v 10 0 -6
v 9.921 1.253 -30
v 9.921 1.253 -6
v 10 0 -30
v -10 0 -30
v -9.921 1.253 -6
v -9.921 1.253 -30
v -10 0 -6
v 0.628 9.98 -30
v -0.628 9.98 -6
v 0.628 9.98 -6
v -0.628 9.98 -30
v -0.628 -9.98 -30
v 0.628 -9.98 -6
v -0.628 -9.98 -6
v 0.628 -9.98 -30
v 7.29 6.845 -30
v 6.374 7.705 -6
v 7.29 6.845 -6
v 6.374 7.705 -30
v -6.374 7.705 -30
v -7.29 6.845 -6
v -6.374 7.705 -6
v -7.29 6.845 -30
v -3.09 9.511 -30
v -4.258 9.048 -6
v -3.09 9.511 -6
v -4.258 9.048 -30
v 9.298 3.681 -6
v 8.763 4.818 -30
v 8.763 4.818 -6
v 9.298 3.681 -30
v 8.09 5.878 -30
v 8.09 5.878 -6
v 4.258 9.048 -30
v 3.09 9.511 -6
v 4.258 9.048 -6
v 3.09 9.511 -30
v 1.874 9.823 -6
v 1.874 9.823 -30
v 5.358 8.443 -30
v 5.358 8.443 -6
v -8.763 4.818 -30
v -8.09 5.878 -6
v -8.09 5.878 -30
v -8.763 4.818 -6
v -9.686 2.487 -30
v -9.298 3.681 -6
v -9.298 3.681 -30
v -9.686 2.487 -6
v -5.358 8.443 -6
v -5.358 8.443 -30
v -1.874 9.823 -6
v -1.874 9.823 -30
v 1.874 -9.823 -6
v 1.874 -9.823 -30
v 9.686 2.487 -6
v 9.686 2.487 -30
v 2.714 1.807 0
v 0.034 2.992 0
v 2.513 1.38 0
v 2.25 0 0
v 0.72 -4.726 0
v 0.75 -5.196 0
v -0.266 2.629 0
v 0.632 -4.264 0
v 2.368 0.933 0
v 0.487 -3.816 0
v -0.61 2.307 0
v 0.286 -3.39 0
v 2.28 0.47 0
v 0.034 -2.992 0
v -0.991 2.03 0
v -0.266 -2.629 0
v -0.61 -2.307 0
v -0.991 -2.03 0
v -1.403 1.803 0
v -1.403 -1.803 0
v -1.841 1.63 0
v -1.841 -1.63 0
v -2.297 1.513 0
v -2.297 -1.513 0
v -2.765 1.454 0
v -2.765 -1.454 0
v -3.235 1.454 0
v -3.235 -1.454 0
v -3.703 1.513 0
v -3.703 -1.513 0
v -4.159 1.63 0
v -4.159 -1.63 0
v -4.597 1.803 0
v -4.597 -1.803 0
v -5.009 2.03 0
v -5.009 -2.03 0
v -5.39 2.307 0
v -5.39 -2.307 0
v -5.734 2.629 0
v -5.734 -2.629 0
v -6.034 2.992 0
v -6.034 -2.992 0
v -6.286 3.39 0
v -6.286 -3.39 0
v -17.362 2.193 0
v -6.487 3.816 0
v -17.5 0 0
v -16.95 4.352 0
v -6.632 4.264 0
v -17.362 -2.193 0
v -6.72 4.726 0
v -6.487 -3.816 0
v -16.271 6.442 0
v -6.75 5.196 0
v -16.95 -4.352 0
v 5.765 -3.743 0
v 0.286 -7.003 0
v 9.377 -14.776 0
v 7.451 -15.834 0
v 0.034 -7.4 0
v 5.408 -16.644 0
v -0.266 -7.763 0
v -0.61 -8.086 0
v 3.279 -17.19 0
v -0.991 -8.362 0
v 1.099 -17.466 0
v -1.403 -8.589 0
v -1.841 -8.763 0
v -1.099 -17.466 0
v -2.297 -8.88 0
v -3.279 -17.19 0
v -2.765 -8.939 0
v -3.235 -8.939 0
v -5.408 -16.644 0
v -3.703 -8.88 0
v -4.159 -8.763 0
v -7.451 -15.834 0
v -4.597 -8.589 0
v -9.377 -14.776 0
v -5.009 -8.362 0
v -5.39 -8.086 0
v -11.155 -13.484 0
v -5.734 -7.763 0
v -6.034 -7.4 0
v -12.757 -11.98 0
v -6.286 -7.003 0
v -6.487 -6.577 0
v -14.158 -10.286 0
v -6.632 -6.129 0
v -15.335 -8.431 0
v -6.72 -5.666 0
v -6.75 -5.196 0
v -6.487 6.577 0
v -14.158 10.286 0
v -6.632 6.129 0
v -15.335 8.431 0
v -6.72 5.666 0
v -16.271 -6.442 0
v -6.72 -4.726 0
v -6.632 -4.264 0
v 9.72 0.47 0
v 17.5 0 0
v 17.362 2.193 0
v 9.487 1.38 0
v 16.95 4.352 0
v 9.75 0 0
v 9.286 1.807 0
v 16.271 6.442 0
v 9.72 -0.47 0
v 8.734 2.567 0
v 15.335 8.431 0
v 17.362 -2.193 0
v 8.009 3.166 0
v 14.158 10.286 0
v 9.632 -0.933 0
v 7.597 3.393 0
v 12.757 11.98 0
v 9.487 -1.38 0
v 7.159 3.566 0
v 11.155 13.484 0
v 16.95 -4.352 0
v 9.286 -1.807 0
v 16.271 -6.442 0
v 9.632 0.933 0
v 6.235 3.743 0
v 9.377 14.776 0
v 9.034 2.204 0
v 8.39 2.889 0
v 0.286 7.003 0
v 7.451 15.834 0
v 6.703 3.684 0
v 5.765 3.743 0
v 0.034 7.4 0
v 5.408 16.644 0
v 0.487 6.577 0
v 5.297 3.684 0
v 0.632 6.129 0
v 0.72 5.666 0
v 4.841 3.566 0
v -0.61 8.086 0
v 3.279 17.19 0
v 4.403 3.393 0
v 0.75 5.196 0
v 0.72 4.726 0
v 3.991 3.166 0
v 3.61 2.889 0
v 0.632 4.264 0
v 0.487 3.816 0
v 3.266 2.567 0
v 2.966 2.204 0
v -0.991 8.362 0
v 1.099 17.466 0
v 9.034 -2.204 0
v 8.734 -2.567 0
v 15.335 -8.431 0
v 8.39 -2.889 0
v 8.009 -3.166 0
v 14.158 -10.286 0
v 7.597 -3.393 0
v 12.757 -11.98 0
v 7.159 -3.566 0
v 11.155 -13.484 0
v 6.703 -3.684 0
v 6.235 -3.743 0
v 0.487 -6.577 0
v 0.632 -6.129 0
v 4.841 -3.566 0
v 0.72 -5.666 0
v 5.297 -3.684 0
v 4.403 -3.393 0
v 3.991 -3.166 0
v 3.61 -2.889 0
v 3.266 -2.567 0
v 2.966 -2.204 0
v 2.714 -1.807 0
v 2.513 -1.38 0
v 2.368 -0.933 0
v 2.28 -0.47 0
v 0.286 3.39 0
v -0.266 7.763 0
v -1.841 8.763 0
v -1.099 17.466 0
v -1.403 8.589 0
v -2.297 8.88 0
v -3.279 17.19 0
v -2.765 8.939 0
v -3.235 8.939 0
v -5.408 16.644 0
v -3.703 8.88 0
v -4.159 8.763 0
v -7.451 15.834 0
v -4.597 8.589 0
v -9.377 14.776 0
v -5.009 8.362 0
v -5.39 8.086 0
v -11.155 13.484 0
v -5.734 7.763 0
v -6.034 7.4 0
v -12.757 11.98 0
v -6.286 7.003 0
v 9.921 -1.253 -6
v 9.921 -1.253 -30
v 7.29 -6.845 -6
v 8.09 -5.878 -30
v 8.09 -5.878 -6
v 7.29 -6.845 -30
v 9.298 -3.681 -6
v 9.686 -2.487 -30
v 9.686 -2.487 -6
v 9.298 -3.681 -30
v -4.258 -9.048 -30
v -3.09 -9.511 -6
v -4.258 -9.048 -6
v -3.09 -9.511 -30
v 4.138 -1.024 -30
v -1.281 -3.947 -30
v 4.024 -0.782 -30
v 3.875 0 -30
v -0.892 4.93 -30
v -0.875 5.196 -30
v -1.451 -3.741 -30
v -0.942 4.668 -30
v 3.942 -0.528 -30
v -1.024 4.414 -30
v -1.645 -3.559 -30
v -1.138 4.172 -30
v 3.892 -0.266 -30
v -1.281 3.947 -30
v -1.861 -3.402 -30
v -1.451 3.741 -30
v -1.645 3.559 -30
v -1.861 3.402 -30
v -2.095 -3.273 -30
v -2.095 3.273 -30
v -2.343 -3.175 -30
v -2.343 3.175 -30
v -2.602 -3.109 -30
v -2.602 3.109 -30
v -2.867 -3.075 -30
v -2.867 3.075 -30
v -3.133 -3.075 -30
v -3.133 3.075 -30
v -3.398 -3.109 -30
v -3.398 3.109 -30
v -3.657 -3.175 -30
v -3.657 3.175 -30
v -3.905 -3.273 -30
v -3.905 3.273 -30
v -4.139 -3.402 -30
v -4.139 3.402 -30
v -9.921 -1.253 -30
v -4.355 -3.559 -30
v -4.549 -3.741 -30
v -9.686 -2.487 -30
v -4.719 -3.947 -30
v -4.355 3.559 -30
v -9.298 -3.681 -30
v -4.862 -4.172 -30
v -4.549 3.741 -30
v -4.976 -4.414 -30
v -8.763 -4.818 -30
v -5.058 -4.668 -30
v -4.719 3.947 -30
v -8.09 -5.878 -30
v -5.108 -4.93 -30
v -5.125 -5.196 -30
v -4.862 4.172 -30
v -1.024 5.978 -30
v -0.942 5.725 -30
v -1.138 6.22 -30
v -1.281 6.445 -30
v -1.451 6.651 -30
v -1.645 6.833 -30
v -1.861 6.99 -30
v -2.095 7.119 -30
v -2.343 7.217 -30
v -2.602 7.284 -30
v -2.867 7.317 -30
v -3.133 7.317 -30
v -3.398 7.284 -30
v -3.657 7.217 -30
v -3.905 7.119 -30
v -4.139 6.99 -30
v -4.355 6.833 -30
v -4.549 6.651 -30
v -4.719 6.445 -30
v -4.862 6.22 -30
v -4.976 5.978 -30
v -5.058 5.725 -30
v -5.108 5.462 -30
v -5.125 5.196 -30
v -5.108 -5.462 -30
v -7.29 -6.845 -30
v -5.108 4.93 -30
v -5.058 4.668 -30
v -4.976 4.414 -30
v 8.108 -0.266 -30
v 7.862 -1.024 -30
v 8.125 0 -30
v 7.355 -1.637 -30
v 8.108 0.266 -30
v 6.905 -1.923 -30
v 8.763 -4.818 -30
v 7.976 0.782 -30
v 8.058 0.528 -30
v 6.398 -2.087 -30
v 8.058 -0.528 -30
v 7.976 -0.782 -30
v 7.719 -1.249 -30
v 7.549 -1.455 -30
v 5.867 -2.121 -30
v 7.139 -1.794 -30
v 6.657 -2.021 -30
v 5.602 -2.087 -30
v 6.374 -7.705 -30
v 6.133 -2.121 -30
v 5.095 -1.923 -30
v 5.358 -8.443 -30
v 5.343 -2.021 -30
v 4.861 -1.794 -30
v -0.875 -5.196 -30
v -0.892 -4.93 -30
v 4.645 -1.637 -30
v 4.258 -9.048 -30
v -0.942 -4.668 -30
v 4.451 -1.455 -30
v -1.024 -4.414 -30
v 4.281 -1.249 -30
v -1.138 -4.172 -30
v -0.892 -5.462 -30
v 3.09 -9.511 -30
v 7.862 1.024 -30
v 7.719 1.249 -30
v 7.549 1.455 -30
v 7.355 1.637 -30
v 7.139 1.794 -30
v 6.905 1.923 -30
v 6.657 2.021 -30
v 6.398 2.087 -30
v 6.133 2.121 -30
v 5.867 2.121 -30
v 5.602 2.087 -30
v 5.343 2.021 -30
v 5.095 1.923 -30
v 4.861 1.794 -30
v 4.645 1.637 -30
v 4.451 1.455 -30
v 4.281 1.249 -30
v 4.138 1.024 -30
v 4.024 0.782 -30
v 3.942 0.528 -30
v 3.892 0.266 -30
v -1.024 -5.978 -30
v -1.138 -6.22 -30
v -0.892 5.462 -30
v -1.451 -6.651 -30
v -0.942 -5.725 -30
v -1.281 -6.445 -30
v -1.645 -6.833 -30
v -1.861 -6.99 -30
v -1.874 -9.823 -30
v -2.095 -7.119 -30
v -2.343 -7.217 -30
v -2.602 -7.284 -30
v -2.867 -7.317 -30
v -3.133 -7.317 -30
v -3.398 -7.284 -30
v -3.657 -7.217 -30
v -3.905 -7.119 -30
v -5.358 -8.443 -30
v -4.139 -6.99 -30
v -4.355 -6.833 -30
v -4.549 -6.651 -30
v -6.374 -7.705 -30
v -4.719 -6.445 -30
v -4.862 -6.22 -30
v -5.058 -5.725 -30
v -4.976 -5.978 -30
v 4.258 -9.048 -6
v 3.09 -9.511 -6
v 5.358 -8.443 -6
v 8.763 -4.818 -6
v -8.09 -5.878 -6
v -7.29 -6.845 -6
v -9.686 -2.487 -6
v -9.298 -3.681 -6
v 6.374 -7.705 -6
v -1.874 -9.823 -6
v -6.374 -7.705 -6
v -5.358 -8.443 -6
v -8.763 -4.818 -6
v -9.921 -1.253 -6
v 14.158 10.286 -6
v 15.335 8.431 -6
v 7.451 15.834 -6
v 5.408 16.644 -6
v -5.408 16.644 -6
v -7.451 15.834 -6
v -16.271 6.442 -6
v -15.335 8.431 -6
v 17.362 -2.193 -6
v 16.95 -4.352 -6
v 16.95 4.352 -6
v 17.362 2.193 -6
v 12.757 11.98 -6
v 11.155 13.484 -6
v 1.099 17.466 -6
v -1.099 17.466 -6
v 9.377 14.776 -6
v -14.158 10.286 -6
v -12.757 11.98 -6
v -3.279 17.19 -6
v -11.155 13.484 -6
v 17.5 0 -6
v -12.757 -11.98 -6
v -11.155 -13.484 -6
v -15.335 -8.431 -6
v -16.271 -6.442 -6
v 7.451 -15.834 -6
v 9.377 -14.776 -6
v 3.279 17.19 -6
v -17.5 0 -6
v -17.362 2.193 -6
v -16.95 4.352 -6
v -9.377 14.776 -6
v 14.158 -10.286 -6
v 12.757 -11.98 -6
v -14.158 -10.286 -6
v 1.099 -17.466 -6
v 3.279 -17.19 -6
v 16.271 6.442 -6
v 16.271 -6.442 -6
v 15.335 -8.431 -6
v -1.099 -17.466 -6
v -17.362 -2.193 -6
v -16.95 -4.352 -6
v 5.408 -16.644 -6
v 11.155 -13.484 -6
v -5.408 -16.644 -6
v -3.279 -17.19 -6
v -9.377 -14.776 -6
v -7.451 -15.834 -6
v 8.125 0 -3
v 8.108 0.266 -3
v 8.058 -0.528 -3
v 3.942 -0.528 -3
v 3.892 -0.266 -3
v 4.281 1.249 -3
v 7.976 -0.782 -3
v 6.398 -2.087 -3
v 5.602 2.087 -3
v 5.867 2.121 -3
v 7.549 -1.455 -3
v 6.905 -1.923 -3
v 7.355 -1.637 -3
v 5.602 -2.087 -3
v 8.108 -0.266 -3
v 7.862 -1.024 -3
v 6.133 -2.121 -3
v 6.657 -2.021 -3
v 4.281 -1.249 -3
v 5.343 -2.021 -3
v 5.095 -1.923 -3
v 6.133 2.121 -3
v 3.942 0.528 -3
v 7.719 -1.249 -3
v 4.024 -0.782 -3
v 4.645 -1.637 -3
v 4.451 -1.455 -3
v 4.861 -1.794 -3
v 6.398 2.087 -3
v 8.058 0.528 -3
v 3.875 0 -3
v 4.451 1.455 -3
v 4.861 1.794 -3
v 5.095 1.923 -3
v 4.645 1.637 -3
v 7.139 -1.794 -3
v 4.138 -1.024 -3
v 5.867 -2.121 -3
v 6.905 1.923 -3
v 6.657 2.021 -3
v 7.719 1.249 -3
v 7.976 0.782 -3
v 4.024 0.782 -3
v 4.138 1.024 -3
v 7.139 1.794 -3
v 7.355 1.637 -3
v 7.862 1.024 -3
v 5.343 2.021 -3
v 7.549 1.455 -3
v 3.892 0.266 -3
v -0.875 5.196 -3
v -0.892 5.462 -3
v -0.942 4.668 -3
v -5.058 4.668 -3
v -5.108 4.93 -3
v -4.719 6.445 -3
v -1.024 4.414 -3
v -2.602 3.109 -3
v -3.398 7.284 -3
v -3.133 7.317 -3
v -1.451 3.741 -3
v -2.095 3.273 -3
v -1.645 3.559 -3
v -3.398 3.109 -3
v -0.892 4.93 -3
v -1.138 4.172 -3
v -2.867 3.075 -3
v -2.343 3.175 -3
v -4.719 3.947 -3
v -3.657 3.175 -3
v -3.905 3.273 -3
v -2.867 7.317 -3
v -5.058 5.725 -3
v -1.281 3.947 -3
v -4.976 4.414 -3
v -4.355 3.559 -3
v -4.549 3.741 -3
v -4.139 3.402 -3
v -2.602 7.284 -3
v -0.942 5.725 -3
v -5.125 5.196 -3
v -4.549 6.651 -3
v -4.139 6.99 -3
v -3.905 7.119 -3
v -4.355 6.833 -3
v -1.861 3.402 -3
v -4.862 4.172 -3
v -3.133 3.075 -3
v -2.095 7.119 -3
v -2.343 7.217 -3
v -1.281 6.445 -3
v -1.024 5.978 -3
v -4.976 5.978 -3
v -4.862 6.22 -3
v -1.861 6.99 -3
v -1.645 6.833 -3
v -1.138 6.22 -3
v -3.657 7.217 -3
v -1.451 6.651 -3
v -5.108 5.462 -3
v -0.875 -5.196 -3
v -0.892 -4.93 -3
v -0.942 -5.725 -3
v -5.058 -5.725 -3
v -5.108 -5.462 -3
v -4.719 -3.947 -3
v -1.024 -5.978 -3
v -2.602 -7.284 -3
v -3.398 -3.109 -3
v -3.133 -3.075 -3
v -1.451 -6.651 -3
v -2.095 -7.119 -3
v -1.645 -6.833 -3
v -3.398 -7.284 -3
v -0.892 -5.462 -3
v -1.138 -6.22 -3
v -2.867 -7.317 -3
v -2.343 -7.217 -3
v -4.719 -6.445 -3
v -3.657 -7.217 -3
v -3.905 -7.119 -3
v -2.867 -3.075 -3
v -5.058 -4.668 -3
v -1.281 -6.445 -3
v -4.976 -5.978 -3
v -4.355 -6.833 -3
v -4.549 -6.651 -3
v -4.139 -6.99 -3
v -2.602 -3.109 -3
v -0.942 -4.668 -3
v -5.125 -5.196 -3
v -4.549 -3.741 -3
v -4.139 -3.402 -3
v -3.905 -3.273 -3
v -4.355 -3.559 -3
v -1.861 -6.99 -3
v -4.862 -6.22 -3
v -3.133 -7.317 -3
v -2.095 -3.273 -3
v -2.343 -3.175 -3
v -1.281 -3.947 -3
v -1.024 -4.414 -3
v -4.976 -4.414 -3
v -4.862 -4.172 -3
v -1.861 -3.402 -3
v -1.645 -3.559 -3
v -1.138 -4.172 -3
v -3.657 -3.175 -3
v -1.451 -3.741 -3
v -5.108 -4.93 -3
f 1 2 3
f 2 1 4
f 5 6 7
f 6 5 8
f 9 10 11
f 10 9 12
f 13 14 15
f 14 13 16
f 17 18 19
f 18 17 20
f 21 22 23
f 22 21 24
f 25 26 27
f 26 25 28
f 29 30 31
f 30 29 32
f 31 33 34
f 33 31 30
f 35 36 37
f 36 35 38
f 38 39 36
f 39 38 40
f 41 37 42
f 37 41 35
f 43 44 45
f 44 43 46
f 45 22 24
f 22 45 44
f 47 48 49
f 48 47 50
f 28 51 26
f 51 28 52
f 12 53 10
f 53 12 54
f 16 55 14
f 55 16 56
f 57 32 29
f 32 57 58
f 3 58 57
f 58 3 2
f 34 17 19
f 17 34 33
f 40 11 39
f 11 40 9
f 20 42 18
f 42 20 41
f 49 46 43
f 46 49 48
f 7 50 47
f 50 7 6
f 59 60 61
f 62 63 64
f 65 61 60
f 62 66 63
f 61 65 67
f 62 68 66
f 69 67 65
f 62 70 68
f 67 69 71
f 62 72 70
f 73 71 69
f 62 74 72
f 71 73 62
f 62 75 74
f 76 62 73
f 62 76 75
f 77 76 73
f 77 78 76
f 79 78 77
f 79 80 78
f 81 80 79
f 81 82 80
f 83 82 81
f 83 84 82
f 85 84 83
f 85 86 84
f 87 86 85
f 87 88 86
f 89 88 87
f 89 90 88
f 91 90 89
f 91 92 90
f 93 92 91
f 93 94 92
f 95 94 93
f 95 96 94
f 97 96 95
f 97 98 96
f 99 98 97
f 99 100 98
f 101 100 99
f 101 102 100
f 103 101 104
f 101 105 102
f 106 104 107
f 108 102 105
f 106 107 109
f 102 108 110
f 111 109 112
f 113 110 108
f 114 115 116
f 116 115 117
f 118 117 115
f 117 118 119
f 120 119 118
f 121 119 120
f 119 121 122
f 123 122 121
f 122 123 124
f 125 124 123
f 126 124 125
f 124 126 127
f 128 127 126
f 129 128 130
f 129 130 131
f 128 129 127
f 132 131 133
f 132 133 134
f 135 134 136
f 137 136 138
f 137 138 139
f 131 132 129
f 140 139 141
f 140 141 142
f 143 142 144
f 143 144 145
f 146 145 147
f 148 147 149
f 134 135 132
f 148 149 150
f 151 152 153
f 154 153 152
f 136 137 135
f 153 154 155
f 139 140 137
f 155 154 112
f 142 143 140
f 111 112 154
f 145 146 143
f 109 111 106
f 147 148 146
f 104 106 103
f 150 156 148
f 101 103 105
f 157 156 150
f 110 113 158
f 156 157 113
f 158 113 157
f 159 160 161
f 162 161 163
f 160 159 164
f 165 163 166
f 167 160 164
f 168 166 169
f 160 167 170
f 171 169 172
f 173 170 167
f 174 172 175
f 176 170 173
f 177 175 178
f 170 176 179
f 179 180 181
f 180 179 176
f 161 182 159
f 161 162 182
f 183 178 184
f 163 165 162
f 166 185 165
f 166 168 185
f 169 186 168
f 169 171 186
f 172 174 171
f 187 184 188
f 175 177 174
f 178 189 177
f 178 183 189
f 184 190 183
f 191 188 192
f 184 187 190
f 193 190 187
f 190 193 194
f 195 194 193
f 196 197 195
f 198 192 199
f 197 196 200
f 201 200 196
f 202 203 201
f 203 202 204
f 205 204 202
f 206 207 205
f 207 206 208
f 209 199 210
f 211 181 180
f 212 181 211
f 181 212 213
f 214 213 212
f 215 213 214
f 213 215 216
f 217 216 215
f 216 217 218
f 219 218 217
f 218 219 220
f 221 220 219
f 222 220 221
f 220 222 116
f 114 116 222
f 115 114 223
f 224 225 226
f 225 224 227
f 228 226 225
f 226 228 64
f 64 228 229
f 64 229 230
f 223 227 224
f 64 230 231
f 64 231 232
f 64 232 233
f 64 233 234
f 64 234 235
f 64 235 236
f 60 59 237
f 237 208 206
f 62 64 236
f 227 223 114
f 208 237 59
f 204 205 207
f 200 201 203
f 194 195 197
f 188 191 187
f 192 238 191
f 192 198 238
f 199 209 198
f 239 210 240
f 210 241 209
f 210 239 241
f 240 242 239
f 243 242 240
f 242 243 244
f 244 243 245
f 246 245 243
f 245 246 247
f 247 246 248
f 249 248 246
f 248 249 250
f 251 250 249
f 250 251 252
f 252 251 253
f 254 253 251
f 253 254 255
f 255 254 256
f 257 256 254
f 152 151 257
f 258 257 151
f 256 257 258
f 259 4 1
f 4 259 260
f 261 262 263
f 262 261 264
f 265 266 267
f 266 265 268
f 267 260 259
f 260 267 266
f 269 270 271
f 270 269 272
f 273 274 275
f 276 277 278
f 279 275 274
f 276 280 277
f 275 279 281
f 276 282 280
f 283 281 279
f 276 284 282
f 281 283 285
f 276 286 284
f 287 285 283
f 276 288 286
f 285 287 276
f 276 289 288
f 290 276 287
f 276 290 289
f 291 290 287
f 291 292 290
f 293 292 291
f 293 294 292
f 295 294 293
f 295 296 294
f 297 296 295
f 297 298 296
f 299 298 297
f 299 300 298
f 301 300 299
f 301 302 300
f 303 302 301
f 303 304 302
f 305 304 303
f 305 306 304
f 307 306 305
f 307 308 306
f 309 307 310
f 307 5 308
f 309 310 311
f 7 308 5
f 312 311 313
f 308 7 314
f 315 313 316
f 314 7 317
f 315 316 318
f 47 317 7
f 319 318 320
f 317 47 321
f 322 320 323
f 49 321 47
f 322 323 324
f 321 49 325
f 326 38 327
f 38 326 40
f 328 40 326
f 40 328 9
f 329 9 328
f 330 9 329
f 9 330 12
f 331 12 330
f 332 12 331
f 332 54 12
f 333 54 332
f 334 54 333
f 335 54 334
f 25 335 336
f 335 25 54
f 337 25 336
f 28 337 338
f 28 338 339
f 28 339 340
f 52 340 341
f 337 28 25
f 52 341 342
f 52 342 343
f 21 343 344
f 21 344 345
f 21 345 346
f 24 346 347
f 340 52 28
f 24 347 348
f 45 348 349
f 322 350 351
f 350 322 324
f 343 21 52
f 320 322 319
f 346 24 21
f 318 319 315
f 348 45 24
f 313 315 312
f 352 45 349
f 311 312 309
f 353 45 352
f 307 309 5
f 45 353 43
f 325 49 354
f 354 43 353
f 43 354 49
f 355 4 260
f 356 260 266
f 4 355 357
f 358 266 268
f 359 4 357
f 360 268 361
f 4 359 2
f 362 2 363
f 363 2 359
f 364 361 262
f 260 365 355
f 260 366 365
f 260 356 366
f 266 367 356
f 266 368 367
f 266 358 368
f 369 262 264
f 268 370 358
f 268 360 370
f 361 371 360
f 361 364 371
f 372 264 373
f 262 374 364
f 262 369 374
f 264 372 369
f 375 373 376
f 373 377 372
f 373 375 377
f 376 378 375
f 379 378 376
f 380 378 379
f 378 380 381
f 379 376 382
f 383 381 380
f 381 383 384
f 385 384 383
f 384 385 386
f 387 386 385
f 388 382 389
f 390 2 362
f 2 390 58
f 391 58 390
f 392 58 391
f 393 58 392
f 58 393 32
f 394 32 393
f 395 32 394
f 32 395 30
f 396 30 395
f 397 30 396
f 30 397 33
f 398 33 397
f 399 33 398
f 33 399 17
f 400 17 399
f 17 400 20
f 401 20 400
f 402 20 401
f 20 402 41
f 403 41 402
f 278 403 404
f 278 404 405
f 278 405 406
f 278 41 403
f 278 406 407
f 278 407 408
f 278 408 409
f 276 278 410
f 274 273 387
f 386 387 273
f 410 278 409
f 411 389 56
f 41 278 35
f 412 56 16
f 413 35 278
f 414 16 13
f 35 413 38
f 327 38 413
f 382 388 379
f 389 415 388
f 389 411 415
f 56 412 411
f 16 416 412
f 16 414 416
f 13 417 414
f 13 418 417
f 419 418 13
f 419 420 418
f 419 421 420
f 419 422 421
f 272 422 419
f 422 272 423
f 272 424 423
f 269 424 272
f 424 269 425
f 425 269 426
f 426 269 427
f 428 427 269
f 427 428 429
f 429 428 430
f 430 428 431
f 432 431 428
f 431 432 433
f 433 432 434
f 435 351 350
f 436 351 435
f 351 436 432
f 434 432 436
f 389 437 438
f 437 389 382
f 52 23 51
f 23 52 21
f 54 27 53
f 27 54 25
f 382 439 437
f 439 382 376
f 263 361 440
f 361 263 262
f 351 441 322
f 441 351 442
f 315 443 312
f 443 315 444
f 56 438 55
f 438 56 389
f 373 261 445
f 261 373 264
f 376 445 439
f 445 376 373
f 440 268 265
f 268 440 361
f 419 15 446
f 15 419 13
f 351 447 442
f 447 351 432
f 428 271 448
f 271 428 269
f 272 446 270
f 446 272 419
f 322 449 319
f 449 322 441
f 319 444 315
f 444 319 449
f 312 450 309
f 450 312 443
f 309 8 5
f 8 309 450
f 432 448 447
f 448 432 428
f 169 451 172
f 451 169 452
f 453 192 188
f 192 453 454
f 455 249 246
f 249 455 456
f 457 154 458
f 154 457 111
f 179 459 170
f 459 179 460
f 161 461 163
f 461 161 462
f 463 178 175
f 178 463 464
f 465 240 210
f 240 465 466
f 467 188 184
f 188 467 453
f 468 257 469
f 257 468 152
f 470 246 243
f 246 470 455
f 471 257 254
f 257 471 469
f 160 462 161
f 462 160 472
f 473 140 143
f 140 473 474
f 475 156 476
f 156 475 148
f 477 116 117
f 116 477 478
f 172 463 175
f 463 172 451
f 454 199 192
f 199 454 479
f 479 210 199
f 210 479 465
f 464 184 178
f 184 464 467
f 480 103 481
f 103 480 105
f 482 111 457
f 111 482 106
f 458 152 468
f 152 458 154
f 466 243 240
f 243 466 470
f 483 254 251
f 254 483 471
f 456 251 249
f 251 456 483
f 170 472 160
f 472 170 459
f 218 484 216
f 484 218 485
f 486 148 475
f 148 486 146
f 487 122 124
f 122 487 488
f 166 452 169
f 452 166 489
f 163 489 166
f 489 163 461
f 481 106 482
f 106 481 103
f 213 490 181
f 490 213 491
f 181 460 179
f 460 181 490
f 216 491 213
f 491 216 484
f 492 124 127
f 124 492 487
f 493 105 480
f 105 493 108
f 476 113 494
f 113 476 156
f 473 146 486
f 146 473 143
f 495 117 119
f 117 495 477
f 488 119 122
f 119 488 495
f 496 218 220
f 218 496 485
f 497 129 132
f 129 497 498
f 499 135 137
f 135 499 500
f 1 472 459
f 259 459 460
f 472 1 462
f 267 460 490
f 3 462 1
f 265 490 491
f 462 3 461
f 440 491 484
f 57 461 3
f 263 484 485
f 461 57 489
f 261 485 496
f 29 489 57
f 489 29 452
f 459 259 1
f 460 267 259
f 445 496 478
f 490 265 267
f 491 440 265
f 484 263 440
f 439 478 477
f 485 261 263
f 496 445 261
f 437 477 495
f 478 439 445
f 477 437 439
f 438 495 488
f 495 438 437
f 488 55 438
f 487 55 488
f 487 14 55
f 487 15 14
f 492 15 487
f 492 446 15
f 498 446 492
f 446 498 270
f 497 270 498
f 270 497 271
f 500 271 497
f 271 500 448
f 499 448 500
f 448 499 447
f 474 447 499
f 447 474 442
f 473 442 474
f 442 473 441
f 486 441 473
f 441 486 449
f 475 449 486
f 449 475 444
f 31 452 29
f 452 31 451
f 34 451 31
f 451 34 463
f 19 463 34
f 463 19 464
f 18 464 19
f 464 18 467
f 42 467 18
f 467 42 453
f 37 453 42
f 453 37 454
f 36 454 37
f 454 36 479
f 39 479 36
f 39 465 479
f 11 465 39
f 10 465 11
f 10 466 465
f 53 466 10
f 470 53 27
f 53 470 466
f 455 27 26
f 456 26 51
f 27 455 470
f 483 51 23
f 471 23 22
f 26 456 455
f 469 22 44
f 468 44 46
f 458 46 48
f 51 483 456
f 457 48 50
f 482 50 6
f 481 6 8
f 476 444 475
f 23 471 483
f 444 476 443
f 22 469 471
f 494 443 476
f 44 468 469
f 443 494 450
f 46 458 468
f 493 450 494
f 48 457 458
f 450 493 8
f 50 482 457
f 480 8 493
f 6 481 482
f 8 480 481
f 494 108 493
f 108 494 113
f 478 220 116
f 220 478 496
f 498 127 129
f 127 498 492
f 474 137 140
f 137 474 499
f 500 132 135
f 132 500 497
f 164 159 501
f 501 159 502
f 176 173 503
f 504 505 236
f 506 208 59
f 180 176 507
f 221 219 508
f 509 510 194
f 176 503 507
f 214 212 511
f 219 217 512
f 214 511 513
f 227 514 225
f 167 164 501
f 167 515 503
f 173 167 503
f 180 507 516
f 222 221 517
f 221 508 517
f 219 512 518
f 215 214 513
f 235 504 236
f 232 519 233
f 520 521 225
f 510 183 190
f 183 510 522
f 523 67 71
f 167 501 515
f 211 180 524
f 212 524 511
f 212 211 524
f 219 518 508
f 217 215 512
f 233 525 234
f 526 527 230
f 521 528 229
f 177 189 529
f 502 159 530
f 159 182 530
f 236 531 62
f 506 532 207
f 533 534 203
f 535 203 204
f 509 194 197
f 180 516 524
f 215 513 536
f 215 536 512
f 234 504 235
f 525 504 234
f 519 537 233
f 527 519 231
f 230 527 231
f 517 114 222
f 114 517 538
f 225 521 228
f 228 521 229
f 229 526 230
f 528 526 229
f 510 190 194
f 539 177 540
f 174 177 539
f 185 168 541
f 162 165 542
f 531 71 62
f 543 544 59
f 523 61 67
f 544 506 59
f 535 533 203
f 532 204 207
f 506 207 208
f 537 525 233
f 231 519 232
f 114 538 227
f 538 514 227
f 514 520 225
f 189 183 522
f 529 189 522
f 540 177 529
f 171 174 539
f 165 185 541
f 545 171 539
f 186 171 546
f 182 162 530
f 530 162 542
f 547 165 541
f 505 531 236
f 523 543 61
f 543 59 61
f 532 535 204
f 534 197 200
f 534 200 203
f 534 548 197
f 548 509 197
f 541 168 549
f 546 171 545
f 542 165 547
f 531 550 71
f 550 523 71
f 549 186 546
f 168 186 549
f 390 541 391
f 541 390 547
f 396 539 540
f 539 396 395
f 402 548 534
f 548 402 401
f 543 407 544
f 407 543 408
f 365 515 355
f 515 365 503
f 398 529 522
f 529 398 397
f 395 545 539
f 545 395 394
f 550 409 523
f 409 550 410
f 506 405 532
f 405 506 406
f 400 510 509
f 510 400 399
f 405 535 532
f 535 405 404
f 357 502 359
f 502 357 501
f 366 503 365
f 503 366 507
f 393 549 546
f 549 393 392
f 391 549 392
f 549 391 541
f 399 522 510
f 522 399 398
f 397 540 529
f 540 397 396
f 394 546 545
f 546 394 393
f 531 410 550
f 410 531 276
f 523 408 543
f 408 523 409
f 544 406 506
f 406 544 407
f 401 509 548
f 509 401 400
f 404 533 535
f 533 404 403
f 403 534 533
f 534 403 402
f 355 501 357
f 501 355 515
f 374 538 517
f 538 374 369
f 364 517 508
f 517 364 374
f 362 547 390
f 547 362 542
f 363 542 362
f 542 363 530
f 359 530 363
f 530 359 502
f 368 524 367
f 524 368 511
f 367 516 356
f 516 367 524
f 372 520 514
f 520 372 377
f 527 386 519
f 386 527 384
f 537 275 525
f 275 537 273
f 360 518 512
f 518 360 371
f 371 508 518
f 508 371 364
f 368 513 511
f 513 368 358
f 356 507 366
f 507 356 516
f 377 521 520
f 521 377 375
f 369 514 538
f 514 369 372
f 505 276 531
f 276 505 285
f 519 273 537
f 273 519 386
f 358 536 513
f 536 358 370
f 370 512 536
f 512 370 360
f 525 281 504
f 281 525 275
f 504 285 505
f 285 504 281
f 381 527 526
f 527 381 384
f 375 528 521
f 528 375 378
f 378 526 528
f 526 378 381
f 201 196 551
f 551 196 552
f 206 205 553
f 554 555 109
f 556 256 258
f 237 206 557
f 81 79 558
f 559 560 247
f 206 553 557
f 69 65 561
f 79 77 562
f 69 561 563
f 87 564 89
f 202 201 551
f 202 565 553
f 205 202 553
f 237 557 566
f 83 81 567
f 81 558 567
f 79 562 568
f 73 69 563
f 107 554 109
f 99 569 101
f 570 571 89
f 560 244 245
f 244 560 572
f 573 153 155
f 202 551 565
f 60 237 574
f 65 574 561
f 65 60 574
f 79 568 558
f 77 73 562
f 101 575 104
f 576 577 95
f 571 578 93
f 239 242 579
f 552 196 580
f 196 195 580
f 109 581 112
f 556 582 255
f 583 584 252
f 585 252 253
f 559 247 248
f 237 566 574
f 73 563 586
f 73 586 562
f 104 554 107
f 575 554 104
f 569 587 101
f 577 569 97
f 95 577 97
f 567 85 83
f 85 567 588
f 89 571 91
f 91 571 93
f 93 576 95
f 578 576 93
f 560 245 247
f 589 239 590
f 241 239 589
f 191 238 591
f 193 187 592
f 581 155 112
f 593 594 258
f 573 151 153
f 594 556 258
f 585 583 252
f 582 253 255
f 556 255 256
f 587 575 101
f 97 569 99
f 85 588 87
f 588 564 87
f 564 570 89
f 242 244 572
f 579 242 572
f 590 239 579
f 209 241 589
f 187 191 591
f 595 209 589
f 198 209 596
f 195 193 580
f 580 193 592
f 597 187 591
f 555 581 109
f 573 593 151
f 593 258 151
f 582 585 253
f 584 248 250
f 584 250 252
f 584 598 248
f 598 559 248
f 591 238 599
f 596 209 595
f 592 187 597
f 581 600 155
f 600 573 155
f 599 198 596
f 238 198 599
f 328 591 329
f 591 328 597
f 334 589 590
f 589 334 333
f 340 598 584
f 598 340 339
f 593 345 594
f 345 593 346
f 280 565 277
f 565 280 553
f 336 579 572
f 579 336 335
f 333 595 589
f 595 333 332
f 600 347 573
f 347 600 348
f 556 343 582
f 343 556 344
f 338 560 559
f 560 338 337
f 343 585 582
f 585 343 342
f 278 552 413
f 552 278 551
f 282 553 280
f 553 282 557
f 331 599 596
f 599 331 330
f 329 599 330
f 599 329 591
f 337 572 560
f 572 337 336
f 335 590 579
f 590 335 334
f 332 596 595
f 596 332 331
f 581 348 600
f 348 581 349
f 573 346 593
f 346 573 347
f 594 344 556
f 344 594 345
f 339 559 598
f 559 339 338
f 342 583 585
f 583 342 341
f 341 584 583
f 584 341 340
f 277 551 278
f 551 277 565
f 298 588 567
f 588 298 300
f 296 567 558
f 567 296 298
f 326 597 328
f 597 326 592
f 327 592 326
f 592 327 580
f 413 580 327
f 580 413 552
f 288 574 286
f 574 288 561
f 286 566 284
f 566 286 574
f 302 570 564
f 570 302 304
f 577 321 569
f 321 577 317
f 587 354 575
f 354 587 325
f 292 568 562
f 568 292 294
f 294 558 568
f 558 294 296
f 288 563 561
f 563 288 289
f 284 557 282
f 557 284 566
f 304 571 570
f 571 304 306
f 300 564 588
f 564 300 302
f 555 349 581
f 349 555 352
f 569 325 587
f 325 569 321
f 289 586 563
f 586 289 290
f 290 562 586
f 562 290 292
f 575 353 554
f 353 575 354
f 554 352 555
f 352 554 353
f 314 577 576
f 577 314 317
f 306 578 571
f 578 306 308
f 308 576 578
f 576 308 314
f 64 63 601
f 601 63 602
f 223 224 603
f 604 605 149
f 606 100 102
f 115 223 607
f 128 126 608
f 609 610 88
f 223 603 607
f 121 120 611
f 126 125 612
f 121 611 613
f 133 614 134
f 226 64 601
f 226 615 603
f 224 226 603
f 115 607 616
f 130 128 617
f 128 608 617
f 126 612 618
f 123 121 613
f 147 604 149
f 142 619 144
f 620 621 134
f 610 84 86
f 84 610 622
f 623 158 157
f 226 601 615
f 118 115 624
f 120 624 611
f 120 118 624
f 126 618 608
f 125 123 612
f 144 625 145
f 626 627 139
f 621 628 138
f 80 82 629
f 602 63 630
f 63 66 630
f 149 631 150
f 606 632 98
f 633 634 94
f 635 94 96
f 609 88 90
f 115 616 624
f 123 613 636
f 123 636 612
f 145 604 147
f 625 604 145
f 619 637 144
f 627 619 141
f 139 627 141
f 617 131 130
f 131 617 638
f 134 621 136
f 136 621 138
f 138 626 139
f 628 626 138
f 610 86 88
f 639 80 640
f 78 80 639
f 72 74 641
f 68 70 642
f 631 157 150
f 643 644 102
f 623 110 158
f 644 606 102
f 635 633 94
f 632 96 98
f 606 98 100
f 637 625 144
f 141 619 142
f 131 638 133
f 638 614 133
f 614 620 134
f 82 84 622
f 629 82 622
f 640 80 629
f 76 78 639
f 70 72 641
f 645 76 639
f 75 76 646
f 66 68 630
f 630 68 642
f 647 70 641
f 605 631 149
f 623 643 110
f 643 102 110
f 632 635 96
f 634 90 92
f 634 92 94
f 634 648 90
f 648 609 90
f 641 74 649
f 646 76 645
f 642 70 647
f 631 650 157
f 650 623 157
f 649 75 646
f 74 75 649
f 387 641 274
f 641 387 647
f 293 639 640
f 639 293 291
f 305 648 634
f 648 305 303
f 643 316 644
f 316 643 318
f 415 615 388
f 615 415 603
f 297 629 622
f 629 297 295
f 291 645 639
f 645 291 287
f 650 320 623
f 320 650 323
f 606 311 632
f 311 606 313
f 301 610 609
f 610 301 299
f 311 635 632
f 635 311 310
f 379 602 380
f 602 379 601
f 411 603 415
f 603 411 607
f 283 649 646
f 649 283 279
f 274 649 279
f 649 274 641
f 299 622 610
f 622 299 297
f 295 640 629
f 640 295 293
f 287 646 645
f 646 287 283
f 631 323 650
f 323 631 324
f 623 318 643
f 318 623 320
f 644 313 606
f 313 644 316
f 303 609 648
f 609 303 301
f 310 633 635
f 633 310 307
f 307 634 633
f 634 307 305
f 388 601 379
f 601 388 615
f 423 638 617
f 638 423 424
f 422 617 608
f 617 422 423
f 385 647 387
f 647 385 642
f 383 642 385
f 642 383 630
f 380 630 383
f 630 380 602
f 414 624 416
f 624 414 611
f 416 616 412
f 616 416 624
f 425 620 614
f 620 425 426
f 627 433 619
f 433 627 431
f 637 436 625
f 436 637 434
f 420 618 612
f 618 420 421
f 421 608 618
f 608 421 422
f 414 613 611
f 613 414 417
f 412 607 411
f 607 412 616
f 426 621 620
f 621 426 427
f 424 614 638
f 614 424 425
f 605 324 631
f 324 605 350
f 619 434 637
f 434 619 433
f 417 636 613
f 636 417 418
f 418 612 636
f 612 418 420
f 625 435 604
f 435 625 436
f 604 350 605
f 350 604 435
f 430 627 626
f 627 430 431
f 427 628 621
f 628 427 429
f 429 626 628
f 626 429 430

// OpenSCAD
$fn = 50;


difference() {
	union() {
		translate(v = [0, 0, -30.0000000000]) {
			cylinder(h = 30, r = 10.0000000000);
		}
		translate(v = [0, 0, -6.0000000000]) {
			cylinder(h = 6, r = 17.5000000000);
		}
	}
	union() {
		translate(v = [6.0000000000, 0.0000000000, 0]) {
			rotate(a = [0, 0, 0]) {
				difference() {
					union() {
						#translate(v = [0, 0, -30.0000000000]) {
							cylinder(h = 30, r = 2.0000000000);
						}
						#translate(v = [0, 0, -3]) {
							cylinder(h = 3, r = 10.0000000000, r1 = 2.1250000000, r2 = 3.7500000000);
						}
						#translate(v = [0, 0, -30.0000000000]) {
							cylinder(h = 30, r = 2.1250000000);
						}
						#translate(v = [0, 0, -30.0000000000]) {
							cylinder(h = 30, r = 2.0000000000);
						}
					}
					union();
				}
			}
		}
		translate(v = [-3.0000000000, 5.1961524227, 0]) {
			rotate(a = [0, 0, 0]) {
				difference() {
					union() {
						#translate(v = [0, 0, -30.0000000000]) {
							cylinder(h = 30, r = 2.0000000000);
						}
						#translate(v = [0, 0, -3]) {
							cylinder(h = 3, r = 10.0000000000, r1 = 2.1250000000, r2 = 3.7500000000);
						}
						#translate(v = [0, 0, -30.0000000000]) {
							cylinder(h = 30, r = 2.1250000000);
						}
						#translate(v = [0, 0, -30.0000000000]) {
							cylinder(h = 30, r = 2.0000000000);
						}
					}
					union();
				}
			}
		}
		translate(v = [-3.0000000000, -5.1961524227, 0]) {
			rotate(a = [0, 0, 0]) {
				difference() {
					union() {
						#translate(v = [0, 0, -30.0000000000]) {
							cylinder(h = 30, r = 2.0000000000);
						}
						#translate(v = [0, 0, -3]) {
							cylinder(h = 3, r = 10.0000000000, r1 = 2.1250000000, r2 = 3.7500000000);
						}
						#translate(v = [0, 0, -30.0000000000]) {
							cylinder(h = 30, r = 2.1250000000);
						}
						#translate(v = [0, 0, -30.0000000000]) {
							cylinder(h = 30, r = 2.0000000000);
						}
					}
					union();
				}
			}
		}
	}
}
